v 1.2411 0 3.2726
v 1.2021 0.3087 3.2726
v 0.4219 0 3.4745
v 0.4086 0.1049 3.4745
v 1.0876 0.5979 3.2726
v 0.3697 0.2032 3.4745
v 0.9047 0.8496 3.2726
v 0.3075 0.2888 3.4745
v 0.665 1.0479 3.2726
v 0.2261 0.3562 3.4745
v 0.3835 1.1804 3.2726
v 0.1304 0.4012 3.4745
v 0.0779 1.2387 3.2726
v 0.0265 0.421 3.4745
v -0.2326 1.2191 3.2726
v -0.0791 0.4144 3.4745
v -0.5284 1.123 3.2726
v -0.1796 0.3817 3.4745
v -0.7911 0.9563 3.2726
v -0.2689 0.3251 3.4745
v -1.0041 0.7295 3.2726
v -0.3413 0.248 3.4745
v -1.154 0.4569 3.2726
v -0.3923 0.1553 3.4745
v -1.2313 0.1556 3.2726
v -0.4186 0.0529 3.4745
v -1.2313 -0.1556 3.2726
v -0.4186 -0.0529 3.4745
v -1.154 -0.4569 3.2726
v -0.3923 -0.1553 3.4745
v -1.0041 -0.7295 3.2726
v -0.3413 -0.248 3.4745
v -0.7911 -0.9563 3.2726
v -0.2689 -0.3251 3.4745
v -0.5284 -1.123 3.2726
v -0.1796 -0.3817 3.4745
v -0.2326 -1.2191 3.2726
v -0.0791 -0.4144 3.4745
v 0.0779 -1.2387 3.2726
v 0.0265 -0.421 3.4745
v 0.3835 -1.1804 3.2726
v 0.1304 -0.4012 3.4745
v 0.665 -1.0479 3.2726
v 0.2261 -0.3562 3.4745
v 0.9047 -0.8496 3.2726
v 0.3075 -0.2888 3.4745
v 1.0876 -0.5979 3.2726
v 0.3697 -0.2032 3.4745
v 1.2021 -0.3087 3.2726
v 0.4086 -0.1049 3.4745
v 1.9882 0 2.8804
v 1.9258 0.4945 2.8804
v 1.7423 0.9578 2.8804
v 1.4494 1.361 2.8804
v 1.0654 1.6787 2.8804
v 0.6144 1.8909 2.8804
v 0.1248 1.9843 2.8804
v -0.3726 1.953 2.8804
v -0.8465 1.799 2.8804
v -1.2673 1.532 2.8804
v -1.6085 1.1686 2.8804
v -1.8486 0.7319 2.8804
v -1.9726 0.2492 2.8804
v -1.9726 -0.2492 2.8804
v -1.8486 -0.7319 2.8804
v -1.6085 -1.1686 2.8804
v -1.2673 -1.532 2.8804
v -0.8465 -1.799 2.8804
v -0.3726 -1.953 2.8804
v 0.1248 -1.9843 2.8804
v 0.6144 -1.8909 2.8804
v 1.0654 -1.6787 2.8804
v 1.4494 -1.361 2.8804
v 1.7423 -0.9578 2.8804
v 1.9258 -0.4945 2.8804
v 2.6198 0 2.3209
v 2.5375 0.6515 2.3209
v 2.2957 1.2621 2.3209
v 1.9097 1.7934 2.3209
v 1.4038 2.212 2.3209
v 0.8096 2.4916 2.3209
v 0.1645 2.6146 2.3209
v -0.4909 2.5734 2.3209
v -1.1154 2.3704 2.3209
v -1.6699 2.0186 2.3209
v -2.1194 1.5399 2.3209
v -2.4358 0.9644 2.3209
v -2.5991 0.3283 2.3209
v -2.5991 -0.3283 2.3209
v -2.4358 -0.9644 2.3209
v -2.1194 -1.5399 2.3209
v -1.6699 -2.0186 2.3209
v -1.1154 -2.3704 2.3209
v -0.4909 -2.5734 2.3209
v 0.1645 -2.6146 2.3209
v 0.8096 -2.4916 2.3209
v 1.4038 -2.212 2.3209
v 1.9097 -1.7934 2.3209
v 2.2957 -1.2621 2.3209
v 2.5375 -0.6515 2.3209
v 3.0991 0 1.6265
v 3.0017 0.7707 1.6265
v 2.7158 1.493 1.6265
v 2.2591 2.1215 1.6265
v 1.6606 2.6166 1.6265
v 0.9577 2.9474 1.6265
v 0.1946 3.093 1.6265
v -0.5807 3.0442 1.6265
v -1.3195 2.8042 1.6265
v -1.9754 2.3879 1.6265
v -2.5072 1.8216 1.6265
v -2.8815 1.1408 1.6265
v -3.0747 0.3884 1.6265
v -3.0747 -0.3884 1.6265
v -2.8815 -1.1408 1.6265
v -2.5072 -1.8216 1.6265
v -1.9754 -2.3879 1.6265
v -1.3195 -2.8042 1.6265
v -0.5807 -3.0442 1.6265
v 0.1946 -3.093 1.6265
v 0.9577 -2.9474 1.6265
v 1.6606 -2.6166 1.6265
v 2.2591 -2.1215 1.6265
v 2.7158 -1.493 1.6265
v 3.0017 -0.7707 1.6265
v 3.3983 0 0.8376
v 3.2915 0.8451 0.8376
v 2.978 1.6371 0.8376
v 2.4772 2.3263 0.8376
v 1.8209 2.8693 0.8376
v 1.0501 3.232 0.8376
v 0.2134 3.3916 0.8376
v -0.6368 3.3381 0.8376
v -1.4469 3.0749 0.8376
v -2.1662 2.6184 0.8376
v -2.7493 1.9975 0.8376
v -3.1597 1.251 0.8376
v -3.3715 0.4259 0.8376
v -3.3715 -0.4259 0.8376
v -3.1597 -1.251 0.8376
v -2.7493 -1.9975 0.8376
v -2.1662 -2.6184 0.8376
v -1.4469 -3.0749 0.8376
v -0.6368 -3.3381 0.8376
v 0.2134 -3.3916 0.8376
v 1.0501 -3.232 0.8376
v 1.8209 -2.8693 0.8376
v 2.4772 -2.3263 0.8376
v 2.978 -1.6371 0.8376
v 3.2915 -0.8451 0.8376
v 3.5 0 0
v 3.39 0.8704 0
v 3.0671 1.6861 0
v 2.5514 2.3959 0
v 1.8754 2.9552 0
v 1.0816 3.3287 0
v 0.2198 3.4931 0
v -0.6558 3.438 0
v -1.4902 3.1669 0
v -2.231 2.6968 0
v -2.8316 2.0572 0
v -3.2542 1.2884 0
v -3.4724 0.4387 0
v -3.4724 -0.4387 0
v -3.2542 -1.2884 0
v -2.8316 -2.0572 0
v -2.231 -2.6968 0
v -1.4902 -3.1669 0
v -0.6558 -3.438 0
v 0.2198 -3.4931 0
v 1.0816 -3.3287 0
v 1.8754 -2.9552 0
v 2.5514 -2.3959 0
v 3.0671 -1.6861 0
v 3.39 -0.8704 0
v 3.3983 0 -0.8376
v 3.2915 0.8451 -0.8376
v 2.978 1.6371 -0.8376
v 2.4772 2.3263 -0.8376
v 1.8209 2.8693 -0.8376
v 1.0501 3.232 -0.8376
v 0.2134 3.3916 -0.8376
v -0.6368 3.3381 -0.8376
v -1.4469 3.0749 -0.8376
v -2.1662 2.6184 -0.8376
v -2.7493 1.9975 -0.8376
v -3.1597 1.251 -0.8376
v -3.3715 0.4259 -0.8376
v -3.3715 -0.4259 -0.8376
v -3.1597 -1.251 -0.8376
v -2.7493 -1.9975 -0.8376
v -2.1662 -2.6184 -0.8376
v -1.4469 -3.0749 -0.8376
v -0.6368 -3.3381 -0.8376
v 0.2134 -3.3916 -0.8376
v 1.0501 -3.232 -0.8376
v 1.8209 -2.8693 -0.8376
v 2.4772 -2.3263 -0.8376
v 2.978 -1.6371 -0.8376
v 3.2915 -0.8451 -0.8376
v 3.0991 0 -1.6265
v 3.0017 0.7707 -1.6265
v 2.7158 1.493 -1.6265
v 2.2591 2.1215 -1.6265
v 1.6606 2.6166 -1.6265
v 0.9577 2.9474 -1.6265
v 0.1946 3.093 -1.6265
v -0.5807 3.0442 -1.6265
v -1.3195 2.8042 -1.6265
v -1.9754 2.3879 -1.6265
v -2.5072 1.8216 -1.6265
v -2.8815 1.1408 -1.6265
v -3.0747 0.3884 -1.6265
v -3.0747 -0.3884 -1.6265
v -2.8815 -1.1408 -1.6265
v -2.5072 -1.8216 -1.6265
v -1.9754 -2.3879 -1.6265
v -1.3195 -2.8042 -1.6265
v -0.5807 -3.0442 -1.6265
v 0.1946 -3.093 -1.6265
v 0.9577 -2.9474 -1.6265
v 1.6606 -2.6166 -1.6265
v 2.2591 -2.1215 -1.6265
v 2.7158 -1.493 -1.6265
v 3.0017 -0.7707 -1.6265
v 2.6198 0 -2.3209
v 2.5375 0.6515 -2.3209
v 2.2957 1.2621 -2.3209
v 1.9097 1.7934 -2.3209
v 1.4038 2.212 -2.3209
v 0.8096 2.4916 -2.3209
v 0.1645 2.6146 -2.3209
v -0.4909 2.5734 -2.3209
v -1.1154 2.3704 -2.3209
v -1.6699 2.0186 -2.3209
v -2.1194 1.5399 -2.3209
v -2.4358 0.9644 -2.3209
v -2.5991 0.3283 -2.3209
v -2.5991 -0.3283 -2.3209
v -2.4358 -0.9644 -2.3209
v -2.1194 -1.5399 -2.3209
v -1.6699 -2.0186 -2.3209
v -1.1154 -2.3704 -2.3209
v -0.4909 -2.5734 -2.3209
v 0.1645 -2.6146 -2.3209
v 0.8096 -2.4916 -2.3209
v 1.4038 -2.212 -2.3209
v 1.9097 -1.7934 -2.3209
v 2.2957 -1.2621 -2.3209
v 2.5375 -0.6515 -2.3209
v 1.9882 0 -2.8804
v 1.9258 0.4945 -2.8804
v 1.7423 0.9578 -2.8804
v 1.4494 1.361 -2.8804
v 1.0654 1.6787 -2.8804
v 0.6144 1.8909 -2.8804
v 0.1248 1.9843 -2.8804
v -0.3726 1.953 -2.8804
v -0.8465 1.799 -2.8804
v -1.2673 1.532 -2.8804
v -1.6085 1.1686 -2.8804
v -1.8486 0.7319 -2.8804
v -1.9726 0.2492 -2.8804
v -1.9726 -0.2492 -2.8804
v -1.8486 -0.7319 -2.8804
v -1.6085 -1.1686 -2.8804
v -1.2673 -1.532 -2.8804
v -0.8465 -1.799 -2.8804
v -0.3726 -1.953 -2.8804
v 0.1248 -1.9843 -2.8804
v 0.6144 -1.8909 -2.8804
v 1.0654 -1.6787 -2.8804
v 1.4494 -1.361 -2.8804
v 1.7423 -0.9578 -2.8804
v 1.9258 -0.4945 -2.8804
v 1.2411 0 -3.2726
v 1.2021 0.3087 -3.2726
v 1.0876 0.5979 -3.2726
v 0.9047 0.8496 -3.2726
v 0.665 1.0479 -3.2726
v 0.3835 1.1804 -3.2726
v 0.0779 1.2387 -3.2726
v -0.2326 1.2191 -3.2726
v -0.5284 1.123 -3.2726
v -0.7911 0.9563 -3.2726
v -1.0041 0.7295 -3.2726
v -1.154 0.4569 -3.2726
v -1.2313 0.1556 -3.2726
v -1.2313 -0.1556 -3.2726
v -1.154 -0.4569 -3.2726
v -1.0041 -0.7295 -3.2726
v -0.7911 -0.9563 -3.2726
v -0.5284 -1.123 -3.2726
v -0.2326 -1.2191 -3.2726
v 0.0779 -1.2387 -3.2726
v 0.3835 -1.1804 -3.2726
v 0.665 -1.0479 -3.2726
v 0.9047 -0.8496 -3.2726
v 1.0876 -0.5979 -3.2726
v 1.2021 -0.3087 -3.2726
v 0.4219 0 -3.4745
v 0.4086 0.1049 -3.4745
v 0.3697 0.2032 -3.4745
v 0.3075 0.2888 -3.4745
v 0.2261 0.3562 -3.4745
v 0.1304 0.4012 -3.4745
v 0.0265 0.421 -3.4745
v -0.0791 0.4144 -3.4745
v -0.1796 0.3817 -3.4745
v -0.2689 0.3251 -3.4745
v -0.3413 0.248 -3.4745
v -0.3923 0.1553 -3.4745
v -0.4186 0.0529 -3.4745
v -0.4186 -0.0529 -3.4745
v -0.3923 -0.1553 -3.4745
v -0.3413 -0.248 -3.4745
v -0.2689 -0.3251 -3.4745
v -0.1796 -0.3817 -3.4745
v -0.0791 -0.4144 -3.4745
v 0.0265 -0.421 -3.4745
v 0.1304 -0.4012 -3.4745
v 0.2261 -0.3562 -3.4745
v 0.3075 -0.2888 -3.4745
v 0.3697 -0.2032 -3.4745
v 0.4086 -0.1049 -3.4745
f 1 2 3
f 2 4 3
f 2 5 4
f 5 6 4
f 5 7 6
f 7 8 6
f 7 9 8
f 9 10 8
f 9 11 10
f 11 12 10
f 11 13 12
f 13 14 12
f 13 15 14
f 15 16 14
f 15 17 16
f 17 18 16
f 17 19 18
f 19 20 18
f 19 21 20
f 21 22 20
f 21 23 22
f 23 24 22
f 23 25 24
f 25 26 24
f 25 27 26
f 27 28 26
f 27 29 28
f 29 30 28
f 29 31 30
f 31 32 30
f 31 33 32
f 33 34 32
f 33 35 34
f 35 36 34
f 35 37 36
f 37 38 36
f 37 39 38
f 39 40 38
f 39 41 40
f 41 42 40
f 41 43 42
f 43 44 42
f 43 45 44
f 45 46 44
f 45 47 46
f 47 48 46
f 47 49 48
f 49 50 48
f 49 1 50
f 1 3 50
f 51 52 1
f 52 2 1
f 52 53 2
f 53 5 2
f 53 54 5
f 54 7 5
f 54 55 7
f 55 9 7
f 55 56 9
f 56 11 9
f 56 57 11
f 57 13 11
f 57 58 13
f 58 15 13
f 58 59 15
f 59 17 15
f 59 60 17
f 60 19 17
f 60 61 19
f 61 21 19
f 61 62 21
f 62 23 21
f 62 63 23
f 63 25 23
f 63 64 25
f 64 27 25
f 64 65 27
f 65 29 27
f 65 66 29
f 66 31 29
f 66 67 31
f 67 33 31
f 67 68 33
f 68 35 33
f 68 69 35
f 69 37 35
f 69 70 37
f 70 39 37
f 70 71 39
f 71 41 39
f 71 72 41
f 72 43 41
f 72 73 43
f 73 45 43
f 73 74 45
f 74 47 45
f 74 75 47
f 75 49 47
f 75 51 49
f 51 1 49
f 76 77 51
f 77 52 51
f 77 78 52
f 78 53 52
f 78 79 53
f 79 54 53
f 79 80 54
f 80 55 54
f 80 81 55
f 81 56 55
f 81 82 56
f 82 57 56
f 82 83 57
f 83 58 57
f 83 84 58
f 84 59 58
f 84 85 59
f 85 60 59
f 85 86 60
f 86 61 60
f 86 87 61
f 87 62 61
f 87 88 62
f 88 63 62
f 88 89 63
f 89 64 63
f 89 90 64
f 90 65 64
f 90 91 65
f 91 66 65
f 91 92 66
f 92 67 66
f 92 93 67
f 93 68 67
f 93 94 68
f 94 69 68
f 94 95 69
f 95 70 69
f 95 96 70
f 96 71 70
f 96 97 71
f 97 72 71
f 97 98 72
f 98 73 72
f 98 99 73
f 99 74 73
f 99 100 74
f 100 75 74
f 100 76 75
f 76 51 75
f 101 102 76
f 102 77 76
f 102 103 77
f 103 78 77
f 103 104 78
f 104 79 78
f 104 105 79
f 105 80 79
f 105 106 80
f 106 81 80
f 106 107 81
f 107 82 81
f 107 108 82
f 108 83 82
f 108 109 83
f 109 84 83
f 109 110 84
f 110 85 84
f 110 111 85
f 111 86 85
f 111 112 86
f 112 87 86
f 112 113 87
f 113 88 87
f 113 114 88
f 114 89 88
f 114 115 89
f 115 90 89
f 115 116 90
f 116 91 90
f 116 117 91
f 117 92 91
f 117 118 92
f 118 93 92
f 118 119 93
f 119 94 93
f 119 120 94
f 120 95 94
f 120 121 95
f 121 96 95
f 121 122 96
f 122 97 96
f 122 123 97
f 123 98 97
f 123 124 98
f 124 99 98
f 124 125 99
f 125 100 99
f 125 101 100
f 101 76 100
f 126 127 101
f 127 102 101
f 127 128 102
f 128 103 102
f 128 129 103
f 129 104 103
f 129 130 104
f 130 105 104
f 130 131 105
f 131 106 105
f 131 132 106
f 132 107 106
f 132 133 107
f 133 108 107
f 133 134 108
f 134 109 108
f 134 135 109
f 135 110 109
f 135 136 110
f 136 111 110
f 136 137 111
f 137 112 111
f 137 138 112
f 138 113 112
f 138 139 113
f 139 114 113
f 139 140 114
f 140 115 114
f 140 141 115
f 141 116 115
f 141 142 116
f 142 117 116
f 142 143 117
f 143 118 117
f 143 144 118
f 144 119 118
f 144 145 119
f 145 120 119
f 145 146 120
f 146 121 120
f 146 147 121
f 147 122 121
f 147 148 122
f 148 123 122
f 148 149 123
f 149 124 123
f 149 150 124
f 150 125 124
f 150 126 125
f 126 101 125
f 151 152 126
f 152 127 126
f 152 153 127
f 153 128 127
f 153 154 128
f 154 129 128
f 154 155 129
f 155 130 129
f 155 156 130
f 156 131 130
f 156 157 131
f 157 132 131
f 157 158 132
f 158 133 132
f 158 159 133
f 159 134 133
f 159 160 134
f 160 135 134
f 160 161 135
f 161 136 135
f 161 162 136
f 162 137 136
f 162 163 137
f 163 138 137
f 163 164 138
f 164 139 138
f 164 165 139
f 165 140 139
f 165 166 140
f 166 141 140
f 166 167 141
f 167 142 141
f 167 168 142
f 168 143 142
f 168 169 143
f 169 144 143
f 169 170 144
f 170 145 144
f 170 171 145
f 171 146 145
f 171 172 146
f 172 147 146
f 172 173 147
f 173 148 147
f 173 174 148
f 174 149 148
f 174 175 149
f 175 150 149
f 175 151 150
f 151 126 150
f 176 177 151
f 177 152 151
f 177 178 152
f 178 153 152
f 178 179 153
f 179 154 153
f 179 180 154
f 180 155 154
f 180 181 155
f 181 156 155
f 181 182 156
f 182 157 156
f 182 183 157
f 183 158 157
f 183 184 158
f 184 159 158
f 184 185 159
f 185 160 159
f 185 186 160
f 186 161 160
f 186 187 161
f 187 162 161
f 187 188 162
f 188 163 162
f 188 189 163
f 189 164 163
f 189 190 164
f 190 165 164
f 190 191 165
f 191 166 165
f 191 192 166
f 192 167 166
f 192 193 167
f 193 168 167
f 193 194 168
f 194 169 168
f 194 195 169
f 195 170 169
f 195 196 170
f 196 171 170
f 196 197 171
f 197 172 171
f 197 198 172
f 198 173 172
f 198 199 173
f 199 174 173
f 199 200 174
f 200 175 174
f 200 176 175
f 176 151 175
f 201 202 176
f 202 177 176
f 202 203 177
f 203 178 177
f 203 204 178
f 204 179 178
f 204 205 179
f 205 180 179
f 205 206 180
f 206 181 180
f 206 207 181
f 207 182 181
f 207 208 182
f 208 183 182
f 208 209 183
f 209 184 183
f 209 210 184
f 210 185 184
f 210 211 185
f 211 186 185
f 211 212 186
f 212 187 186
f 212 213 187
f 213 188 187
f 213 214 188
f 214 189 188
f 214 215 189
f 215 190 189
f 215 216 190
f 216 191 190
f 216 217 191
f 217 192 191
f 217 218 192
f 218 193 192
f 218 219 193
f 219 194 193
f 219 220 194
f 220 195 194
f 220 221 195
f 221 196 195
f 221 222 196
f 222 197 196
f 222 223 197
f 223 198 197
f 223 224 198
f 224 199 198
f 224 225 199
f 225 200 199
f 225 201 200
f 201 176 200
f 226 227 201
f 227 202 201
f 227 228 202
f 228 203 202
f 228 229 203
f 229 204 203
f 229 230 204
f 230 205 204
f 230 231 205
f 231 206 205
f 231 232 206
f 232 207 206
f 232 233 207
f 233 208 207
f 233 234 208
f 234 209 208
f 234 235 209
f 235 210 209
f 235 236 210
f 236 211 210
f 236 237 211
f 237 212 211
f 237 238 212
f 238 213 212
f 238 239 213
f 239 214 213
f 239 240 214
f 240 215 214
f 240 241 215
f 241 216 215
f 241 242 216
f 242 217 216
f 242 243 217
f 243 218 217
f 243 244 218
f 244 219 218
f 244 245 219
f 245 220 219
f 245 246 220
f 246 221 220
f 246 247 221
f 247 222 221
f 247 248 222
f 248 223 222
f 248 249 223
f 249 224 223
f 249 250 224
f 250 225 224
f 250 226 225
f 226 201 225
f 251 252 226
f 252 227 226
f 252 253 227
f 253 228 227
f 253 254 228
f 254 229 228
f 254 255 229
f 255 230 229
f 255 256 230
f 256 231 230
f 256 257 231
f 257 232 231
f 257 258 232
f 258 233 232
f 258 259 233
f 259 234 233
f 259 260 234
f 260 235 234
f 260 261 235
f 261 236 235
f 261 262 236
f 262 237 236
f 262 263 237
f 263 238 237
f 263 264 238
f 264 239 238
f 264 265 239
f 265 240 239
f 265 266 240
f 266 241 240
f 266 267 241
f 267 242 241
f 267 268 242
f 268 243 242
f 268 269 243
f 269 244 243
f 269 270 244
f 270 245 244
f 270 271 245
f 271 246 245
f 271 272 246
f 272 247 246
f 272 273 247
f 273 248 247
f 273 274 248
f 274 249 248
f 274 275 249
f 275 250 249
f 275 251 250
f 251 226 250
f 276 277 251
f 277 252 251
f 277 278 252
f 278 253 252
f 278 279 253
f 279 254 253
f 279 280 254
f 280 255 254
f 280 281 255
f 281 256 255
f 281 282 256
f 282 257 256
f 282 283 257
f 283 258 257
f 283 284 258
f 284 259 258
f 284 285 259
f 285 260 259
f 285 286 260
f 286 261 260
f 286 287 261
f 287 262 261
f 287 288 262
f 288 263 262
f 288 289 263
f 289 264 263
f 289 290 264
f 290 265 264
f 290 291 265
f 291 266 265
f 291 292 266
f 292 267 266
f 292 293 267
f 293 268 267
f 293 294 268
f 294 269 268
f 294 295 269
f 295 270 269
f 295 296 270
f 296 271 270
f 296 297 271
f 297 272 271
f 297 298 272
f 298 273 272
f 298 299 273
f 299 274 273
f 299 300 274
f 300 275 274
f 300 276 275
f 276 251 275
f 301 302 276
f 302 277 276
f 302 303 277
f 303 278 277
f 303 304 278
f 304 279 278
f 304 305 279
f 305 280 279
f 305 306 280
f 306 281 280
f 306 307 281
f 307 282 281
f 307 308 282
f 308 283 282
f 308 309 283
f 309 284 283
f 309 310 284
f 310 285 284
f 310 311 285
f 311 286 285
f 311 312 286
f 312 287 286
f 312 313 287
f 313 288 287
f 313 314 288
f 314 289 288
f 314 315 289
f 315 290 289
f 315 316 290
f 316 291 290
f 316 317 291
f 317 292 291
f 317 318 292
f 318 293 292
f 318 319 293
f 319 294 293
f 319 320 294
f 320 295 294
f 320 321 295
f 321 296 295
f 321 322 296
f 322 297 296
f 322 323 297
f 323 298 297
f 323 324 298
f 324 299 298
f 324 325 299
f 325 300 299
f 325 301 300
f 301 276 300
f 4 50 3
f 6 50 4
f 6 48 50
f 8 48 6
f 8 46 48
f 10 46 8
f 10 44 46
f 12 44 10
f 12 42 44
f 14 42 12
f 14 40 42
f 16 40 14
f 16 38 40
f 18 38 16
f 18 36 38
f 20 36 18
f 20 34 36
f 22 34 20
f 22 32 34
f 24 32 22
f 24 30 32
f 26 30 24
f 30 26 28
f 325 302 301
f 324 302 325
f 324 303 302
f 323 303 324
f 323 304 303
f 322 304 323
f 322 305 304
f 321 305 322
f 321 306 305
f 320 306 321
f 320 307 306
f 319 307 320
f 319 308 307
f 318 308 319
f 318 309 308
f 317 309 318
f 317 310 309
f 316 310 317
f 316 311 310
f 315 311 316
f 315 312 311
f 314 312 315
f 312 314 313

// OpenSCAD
// file: parameters.scad
//parameters

//base
back_length = 10;
outer_width = 20;
outer_length = 36+back_length;
inner_width = 12;
inner_length = 25;
base_height = 6;
front_offset = round((outer_length-inner_length)/2)-4;
back_component_length = 10;
back_component_height = 100;
back_offset = outer_length/2+back_component_length/2;
top_component_height = 8;
top_component_width = 40;

//hangon
contact_delta = 50;
hangon_support_length = 8;
hangon_support_delta = 2.5;
hangon_support_distance = (top_component_width/2-round((top_component_width*0.1)/2)-hangon_support_delta);
shaft_center = (-hangon_support_length-((hangon_support_distance+10)/2))-contact_delta;
hangon_base_diameter = hangon_support_distance+30;

//fixture
top_part_diplacement = 8;
leg_width = 2;
clickon_height = 2;

//bearing_pit
shaft_hole_width = hangon_base_diameter/2-5;
holder_width = shaft_hole_width-1;
holder_height = 10;
bearing_pit_width = holder_width+5;
bearing_pit_height = 4;
shaft_hole_radius = holder_width-5;
wall_width = 2;
wall_height = 5;
pit_width = 10;

//bearing_disc
//disc_radius = shaft_hole_radius+pit_width;
disc_radius = 10;
disc_height = 4;
hole_length = (shaft_hole_radius*2)-2;
hole_width = 2;
shaft_raidus = (hole_length/2)*0.6;

//servo
servo_width = 12;
servo_length = 24;
servo_height = 24;
ex_length = 5;
ex_height = 4;
shaft_radius = 5;
shaft_height = 5;
shaft_offset = -servo_length/2+shaft_radius+3;

//ball bearings
ball_bearing_length = 8;
ball_bearing_height = 3;

//shaft
shaft_girth = shaft_raidus-(0.5/2);
shaft_pole_height = 60;
shaft_grip_height = 5;
shaft_fitting = 4;
pole_up_trans = back_component_height/2-(servo_height/2+shaft_height/2)+((servo_height+shaft_height)-shaft_pole_height/2)+shaft_fitting;
//lock_ex_width = hole_width*0.8;
lock_ex_width = 2;
//lock_ex_length = hole_length-0.5;
lock_ex_length = 2;
lock_ex_displacement = -17.6;

//shaft_grip
shaft_grip_radius = 12;



//complete 
bearing_delta = 4;
center_on_shaft = front_offset-shaft_offset;
// main file
include <parameters.scad>

module ball_bearing(){
    rotate([0,90,0])
    cylinder(ball_bearing_length/2,ball_bearing_height ,true);
    rotate([0,90,180])
    cylinder(ball_bearing_length/2,ball_bearing_height ,true);
}

//ball_bearing();


sphere(3.5, $fn=25);
